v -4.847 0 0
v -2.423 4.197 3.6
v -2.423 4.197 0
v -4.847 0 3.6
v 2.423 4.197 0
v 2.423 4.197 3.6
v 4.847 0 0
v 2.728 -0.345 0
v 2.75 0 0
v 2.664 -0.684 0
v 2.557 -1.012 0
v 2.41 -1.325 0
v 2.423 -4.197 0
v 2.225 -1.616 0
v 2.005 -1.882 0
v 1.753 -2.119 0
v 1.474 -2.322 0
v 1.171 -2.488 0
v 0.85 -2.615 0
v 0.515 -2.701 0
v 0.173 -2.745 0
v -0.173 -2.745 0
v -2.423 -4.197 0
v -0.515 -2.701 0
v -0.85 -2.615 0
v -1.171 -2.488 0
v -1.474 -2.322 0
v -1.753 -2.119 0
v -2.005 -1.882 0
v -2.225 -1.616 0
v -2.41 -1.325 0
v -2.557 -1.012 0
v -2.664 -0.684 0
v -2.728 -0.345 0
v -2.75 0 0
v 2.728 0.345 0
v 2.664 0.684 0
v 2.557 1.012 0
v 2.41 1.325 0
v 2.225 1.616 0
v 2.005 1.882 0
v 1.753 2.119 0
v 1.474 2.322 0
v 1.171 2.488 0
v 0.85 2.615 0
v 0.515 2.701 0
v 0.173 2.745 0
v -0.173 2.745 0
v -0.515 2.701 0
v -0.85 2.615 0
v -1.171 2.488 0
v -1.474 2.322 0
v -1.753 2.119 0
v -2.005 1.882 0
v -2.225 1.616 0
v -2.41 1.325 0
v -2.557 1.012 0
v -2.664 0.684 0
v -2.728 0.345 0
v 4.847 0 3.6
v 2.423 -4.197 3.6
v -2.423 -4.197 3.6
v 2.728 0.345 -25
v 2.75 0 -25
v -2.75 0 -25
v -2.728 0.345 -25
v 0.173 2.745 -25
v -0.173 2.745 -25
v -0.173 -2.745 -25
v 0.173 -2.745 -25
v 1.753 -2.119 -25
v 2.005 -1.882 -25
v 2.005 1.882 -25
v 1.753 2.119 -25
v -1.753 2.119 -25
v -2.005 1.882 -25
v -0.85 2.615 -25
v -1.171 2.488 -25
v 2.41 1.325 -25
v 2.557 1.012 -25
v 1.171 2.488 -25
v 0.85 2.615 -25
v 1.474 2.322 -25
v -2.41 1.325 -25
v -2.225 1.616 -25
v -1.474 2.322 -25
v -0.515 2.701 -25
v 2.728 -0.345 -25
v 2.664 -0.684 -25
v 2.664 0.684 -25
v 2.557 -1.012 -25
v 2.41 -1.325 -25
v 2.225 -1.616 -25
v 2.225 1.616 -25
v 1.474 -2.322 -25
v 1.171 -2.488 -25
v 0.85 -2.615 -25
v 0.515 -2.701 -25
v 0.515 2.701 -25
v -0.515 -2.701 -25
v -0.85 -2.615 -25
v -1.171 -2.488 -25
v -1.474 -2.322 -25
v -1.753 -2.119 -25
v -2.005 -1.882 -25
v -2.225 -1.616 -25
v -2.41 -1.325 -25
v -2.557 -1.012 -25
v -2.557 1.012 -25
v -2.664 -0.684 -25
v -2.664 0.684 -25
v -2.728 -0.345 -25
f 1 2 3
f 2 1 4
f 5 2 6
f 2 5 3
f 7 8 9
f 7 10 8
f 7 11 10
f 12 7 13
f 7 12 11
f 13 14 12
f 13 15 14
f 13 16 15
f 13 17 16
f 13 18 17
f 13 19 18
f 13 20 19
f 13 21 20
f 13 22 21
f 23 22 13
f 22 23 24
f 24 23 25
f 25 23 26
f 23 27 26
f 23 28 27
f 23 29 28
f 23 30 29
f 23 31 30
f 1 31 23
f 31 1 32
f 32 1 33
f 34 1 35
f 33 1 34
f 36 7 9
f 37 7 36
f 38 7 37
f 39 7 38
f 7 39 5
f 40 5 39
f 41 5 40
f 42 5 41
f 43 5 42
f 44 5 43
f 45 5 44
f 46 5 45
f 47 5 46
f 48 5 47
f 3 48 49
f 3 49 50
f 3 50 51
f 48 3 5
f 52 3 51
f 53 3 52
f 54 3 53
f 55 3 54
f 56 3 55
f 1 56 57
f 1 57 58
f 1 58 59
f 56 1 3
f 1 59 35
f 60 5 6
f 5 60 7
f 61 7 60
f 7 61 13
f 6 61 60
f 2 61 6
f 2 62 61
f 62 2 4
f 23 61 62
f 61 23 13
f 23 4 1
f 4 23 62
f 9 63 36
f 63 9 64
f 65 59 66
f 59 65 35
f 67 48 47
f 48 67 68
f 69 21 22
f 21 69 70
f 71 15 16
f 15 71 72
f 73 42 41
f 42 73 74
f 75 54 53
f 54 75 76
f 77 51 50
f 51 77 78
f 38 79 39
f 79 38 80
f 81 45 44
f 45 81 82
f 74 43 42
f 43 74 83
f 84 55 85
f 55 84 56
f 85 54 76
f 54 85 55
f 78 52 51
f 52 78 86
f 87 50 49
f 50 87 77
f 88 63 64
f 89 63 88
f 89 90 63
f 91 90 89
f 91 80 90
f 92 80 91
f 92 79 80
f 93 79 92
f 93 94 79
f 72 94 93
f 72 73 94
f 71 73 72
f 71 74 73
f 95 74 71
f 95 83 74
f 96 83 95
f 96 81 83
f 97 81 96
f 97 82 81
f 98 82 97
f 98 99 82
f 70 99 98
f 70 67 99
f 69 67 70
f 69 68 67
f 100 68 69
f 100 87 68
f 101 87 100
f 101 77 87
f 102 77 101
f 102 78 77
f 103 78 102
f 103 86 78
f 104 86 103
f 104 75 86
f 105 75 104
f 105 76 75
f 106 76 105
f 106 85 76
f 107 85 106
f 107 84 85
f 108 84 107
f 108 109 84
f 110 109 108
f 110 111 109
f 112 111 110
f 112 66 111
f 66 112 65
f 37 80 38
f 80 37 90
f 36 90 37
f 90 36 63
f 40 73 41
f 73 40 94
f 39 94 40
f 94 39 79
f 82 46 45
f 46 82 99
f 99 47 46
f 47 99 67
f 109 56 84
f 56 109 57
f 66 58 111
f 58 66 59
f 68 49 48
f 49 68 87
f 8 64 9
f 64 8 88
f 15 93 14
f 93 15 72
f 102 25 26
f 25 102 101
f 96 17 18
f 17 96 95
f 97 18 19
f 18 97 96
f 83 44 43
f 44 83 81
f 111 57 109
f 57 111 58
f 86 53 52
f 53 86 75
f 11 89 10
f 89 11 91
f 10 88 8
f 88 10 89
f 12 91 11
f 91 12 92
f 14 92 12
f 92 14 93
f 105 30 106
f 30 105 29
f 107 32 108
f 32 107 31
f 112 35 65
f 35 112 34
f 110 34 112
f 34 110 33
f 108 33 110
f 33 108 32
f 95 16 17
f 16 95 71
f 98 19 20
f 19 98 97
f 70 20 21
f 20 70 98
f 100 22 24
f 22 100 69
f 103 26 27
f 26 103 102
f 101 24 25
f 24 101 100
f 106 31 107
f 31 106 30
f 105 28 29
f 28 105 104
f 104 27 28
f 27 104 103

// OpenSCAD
$fn = 50;


difference() {
	union() {
		translate(v = [0, 0, 0]) {
			rotate(a = [0, 0, 0]) {
				translate(v = [0, 0, 0]) {
					rotate(a = [0, 0, 0]) {
						linear_extrude(height = 3.6000000000) {
							polygon(points = [[4.8468000000, 0.0000000000], [2.4234000000, 4.1974519271], [-2.4234000000, 4.1974519271], [-4.8468000000, 0.0000000000], [-2.4234000000, -4.1974519271], [2.4234000000, -4.1974519271]]);
						}
					}
				}
			}
		}
		translate(v = [0, 0, -25]) {
			rotate(a = [0, 0, 0]) {
				cylinder(h = 25, r = 2.7500000000);
			}
		}
	}
	union();
}
